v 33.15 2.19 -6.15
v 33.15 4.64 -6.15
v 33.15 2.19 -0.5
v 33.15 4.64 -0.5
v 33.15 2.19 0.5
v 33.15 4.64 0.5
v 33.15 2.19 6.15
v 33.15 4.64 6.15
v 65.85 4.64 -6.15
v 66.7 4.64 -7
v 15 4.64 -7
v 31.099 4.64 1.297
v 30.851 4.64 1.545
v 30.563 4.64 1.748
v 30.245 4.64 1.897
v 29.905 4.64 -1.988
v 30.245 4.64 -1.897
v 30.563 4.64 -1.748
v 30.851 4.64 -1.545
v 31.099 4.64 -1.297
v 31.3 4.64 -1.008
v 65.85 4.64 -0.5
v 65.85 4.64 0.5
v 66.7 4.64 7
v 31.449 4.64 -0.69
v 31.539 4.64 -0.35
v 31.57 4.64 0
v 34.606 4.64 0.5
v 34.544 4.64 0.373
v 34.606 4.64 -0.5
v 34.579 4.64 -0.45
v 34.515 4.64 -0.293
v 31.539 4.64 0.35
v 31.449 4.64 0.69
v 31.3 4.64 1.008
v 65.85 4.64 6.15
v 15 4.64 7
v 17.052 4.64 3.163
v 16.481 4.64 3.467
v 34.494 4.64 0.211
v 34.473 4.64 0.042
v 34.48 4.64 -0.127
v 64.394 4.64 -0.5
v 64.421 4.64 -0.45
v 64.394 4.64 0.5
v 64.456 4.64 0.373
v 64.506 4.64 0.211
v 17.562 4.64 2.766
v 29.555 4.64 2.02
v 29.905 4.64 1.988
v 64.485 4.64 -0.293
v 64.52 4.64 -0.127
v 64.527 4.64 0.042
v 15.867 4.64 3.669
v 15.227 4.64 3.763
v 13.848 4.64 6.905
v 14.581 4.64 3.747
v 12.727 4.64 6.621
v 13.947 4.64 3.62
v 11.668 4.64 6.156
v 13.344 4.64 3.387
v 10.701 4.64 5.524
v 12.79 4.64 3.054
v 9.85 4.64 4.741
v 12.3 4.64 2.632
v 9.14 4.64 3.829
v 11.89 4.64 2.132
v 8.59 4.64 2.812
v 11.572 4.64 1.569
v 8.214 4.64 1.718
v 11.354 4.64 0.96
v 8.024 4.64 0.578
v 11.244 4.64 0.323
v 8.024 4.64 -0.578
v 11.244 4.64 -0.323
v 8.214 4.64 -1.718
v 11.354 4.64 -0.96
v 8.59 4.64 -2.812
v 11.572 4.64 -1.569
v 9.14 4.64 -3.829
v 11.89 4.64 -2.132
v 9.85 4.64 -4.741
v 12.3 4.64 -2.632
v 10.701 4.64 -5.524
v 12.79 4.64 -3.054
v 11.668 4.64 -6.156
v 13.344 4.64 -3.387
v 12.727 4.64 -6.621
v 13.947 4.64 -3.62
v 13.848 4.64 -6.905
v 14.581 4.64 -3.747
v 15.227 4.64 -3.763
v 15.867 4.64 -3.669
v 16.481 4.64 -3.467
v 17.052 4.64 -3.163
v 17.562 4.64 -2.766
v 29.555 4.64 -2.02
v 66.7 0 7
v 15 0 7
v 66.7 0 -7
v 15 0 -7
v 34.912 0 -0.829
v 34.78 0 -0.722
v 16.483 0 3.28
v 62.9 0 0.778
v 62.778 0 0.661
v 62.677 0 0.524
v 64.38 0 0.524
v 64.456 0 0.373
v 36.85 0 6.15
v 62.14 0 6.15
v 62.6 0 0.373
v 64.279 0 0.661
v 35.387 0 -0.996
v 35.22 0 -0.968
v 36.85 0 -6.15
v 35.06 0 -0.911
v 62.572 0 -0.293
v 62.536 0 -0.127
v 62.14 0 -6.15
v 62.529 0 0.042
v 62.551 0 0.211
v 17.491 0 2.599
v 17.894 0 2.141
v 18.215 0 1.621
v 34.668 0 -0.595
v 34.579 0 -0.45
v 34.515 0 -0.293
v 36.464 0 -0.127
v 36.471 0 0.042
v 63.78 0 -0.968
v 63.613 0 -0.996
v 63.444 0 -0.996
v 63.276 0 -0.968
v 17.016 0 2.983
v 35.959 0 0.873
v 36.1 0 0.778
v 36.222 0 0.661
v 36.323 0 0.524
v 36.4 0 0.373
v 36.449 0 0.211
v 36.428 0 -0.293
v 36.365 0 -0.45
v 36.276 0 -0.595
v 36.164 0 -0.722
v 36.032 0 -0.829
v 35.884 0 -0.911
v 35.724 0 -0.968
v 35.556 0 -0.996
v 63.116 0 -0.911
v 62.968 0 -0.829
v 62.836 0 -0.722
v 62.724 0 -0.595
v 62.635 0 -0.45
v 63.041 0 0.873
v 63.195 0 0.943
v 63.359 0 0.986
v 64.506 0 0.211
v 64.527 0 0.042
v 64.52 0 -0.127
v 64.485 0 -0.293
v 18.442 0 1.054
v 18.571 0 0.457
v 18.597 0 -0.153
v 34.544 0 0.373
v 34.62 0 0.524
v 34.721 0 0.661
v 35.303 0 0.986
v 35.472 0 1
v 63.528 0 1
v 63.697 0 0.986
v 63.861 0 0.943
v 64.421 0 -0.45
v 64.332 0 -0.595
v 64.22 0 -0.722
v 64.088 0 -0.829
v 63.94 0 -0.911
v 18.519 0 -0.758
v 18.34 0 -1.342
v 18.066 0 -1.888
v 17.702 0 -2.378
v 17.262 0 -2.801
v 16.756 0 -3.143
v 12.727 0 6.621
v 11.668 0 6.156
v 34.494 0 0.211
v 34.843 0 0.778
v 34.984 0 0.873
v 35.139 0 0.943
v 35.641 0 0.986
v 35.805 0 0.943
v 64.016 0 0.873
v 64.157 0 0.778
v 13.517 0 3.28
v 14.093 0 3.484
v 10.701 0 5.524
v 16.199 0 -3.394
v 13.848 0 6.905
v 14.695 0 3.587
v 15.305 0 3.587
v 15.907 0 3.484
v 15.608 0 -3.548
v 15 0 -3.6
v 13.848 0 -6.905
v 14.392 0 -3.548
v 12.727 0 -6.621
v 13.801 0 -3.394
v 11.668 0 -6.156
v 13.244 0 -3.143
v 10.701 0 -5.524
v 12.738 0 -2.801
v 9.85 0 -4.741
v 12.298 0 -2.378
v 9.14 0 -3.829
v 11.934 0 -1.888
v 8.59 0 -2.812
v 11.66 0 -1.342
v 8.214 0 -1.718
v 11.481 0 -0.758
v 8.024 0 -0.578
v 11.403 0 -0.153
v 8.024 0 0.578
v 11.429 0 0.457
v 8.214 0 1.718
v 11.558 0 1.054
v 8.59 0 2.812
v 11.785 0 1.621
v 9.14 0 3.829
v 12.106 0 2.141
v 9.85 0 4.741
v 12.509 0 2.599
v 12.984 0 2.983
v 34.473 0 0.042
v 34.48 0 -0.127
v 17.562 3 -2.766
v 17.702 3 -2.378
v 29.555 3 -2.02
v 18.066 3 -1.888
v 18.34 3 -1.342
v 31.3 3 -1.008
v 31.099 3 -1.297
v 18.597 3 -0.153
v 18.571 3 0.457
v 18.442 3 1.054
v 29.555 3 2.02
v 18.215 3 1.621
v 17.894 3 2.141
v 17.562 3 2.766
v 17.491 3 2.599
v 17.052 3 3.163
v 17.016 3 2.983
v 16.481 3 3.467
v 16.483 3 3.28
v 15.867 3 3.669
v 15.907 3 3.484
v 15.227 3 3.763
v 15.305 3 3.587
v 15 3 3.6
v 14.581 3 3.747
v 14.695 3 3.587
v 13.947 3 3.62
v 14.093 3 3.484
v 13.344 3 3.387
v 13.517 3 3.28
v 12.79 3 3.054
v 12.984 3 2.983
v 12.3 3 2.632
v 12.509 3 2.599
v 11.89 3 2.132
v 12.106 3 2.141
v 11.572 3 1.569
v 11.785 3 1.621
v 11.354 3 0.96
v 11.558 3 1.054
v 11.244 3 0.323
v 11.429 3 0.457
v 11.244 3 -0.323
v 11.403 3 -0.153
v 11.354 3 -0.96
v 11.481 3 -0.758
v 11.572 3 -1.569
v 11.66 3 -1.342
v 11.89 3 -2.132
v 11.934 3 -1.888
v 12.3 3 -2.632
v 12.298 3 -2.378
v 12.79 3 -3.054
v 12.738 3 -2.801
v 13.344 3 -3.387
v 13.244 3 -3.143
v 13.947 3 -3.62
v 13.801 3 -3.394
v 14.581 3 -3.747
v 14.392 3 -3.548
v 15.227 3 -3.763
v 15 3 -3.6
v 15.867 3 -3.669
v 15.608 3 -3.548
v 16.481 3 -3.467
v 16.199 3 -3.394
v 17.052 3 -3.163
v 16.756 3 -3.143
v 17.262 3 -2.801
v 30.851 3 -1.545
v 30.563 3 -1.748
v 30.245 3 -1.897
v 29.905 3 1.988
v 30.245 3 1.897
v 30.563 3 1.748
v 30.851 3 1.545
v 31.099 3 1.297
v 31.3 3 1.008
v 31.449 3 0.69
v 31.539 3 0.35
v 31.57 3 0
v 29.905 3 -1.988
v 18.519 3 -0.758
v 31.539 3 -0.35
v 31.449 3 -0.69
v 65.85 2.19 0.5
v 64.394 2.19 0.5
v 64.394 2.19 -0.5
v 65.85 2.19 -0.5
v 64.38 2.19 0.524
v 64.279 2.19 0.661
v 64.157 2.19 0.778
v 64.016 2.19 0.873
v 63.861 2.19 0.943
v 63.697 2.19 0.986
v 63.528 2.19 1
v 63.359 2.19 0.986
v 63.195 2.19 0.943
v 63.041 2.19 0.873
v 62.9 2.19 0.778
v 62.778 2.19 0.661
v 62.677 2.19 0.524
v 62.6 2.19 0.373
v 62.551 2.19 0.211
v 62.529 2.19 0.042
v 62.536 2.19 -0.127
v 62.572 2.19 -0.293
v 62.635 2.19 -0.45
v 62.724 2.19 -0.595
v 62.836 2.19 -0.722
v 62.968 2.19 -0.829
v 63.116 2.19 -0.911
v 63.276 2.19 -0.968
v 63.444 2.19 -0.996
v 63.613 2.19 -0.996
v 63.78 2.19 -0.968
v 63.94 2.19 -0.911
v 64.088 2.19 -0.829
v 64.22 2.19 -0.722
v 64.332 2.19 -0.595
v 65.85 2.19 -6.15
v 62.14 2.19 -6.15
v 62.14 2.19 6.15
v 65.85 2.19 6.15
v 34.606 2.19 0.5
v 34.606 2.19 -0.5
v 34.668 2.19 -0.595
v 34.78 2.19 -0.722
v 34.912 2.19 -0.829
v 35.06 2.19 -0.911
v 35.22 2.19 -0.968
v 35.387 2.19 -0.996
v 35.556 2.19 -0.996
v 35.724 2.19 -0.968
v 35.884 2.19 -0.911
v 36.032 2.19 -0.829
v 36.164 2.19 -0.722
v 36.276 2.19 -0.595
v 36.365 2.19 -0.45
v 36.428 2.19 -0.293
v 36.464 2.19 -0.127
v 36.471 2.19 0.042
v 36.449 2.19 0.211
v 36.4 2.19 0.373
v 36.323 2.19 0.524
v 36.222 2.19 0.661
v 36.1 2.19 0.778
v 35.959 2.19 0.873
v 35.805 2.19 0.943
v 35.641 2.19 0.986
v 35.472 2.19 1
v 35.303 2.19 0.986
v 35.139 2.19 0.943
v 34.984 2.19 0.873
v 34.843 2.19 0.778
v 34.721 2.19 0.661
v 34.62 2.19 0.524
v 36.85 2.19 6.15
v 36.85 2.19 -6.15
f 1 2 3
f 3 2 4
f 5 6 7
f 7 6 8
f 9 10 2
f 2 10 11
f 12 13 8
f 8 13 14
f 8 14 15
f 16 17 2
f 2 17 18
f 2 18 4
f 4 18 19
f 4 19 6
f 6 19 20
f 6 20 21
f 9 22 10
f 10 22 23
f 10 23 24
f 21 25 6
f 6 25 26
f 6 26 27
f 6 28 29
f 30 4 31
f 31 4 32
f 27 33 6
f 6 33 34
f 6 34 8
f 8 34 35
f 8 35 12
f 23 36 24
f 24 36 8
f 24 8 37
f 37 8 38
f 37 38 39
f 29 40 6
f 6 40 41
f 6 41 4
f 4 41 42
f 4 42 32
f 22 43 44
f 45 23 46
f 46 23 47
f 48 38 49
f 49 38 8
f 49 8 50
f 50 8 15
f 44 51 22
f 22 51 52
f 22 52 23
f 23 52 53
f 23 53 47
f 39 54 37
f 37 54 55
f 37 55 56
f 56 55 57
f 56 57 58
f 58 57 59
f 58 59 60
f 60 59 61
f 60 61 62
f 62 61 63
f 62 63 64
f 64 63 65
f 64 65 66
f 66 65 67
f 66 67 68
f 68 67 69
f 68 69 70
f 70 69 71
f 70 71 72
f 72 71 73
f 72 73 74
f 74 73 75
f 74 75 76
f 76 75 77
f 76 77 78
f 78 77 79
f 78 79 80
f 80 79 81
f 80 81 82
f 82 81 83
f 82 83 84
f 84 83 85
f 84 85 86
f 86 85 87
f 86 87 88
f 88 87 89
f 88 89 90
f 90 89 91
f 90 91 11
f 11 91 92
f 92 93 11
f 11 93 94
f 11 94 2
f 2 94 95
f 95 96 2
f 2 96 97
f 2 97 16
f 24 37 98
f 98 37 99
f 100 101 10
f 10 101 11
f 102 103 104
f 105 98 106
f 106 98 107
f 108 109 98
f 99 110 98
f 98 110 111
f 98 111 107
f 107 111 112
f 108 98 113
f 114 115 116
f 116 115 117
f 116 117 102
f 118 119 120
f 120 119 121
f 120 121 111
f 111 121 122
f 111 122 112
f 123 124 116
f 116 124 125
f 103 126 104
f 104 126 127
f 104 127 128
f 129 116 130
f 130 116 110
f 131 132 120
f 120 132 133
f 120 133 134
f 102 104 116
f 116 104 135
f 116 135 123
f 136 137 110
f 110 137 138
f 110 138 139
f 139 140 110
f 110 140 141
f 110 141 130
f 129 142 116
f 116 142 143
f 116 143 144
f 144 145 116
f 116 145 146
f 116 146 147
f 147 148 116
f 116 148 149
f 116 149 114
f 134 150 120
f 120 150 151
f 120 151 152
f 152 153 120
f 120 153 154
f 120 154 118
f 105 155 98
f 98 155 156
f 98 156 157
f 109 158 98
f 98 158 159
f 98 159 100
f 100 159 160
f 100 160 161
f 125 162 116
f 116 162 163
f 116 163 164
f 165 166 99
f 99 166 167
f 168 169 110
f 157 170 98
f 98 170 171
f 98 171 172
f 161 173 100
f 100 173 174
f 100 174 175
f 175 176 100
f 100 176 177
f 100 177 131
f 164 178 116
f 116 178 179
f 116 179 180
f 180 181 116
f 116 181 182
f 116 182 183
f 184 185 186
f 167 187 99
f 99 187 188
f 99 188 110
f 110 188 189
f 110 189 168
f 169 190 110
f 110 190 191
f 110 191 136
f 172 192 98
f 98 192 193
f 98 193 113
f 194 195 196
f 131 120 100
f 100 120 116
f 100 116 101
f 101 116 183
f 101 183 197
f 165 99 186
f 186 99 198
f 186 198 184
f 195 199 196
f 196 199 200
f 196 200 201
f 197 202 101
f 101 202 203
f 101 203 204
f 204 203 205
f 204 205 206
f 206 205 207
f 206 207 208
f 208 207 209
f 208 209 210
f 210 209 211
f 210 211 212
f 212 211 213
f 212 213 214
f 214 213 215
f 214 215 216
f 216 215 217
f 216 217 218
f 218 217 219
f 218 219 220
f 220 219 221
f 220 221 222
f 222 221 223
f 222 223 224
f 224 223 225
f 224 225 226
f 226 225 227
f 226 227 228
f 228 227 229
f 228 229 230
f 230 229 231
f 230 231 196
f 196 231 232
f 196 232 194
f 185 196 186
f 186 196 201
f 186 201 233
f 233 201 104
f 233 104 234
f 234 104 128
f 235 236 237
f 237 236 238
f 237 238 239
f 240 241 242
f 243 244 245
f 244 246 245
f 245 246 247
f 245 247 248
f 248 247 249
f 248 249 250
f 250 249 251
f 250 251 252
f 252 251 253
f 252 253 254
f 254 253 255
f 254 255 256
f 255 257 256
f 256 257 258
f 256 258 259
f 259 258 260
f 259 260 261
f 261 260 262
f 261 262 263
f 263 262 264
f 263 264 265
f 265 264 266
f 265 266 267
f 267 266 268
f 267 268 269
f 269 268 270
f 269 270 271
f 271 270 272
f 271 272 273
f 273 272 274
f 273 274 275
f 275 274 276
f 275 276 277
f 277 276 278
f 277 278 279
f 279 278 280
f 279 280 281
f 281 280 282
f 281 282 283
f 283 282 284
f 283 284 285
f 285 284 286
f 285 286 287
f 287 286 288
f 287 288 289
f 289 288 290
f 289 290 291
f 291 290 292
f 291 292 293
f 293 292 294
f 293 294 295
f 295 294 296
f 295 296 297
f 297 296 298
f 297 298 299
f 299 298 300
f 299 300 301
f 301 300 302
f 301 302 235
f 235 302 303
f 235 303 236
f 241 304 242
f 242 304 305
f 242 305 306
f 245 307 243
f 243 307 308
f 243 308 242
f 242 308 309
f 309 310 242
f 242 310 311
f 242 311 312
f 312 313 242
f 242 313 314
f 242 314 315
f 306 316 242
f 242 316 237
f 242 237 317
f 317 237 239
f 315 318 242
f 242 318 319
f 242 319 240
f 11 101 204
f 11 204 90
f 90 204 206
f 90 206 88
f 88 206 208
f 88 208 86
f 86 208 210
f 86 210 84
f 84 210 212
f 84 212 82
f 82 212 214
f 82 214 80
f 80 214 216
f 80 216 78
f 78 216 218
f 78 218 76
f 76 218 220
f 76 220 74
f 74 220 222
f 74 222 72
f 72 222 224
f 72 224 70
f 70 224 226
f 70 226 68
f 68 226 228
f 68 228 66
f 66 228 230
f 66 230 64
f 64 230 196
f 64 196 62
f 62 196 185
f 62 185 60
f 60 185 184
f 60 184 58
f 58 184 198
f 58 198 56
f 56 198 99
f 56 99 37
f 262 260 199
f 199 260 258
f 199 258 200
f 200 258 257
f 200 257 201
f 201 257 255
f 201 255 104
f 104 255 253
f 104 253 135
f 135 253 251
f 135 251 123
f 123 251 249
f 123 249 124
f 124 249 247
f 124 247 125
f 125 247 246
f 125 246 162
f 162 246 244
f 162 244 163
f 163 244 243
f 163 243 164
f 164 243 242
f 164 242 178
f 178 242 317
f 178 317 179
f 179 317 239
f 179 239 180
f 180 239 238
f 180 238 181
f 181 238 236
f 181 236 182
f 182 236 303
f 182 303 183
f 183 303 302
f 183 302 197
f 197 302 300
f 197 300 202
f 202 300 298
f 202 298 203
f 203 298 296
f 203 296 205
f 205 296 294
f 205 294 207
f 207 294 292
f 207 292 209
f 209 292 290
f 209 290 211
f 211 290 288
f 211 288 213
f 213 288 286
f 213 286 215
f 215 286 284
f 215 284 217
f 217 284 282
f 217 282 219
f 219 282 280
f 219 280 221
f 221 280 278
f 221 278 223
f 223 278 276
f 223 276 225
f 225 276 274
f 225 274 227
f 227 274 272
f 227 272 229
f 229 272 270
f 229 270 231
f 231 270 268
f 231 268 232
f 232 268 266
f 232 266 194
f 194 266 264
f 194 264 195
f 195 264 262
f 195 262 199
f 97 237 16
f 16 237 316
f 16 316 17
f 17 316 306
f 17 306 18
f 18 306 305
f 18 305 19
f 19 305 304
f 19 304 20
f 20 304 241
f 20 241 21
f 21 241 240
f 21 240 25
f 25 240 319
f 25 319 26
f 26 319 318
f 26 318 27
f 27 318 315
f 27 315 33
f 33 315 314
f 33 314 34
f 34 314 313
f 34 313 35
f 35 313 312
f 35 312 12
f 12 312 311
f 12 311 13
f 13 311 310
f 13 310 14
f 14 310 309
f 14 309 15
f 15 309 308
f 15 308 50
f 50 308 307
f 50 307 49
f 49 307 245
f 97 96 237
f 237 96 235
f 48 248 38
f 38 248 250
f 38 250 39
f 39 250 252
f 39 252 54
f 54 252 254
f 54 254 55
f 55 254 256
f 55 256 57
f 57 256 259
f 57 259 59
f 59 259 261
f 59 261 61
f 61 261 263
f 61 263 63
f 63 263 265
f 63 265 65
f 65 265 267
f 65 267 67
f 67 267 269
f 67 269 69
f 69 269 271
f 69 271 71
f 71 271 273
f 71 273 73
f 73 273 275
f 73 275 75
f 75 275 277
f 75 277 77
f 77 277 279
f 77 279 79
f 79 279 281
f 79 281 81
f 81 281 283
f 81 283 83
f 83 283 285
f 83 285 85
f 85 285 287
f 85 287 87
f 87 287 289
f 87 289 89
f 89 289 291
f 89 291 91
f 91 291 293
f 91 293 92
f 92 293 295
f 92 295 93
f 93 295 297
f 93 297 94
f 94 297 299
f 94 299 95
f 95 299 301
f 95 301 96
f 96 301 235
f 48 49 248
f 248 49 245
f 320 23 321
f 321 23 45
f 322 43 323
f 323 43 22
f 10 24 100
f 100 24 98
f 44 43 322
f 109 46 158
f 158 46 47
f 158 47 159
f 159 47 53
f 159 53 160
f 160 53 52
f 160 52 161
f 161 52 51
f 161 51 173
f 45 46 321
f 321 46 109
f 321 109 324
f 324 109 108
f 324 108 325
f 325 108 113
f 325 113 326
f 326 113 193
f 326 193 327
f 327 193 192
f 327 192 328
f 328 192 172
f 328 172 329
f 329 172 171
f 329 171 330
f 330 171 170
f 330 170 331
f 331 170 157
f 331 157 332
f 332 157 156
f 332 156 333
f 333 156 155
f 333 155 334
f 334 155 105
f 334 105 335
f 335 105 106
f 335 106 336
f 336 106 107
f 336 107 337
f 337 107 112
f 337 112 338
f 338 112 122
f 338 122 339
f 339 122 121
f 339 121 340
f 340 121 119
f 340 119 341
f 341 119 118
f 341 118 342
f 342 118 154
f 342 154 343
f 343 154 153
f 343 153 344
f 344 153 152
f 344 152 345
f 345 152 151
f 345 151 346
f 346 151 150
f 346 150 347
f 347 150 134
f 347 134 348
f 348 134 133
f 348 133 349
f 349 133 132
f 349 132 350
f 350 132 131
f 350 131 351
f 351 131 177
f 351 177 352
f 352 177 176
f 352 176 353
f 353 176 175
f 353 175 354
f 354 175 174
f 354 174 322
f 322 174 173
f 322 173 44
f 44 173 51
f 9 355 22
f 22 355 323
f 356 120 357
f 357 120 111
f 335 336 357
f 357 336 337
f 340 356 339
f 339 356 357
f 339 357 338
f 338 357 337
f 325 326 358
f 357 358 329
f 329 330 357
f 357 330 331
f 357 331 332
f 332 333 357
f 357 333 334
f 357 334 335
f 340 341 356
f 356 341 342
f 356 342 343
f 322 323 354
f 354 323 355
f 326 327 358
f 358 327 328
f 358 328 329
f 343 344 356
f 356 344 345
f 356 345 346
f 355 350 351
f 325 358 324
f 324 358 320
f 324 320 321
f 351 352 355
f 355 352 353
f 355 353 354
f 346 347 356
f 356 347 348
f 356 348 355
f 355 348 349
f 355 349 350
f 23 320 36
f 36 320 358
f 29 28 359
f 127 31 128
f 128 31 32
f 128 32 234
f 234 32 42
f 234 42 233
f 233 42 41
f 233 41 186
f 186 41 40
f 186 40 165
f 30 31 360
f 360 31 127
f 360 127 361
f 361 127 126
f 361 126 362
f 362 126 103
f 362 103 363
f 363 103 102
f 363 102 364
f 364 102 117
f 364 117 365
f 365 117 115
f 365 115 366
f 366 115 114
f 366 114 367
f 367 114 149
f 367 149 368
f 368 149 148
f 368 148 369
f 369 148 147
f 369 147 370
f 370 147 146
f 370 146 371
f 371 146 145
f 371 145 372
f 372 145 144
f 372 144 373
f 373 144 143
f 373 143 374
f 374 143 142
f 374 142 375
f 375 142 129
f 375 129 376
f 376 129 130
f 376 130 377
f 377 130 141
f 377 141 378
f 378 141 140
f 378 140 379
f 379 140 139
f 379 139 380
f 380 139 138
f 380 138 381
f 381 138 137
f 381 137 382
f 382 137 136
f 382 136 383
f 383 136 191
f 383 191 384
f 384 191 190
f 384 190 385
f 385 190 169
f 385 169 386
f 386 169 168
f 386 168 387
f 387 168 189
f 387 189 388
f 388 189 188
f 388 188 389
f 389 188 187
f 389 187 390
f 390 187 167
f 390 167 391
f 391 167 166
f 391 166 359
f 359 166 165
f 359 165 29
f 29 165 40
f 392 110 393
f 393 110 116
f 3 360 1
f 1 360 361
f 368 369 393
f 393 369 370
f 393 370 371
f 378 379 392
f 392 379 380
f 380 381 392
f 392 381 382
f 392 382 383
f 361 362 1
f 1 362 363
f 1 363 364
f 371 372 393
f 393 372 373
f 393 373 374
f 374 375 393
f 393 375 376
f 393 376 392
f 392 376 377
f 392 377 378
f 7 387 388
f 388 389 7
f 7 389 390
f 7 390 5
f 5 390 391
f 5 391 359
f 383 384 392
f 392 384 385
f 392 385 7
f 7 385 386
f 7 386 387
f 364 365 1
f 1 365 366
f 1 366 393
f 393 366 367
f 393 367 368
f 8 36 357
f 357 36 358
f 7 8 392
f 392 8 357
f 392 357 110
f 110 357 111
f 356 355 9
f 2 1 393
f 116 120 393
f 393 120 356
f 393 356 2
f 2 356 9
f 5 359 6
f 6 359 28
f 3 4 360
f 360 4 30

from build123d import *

# Parameters (mm, degrees)
BOSS_EXTRUDE1_DEPTH       = 3
SKETCH2_R                 = 3.6
CUT_EXTRUDE1_DEPTH        = 3.95
BOSS_EXTRUDE2_DEPTH       = 1.64
SKETCH4_R                 = 3.25
CUT_EXTRUDE2_DEPTH        = 63.566201739
CAVITY1_OUTLINE_R         = 3.25
CAVITY1_DEPTH             = 4.64
CAVITY1_START             = 3.19
CAVITY1_2_DEPTH           = 1.45
CUT_EXTRUDE4_DEPTH        = 63.566201739
BOSS_EXTRUDE3_START       = -4.64
BOSS_EXTRUDE3_DEPTH       = 4.64
BOSS_EXTRUDE4_DEPTH       = 4.64
BOSS_EXTRUDE5_DEPTH       = 4.64
CUT_EXTRUDE5_DEPTH        = 1.45
SKETCH7_R                 = 1
CUT_EXTRUDE6_DEPTH        = 4.64
CUT_EXTRUDE7_DEPTH        = 68.226628653
CUT_EXTRUDE7_DEPTH_BACK   = 68.226628653
SKETCH10_W                = 23.28963149
SKETCH10_H                = 12.3
SKETCH10_W_2              = 22.98963149
SKETCH10_H_2              = 12
CUT_EXTRUDE8_DEPTH        = 1.45
CUT_EXTRUDE9_DEPTH        = 1.45
SKETCH14_W                = 12.3
SKETCH14_H                = 3.19
CUT_EXTRUDE10_DEPTH       = 1
SKETCH15_W                = 12.3
SKETCH15_H                = 3.19
CUT_EXTRUDE11_DEPTH       = 1
CUT_EXTRUDE12_DEPTH       = 1
CUT_EXTRUDE13_DEPTH       = 1
CUT_EXTRUDE14_REACH       = 69.227
SKETCH18_W                = 15
SKETCH18_H                = 14
BODY_MOVE_COPY1_OUTLINE_R = 3.6
BODY_MOVE_COPY1_DEPTH     = 4.64
BODY_MOVE_COPY1_START     = 3
BODY_MOVE_COPY1_2_DEPTH   = 1.64
BODY_MOVE_COPY1_3_DEPTH   = 4.64
BODY_MOVE_COPY1_4_DEPTH   = 3


# Read off the part's stored shape, not the designer's step: Cavity1, Body-Move/Copy1
with BuildPart() as part:
    # Sketch1 → Boss-Extrude1 (new body)
    with BuildSketch(Plane(origin=(0, 0, 0), x_dir=(1, 0, 0), z_dir=(0, 1, 0))):
        with BuildLine():
            Line((0, 7), (55, 7))
            ThreePointArc((55, 7), (62, 0), (55, -7))
            Line((55, -7), (0, -7))
            ThreePointArc((0, -7), (-7, 0), (0, 7))
        make_face()
    extrude(amount=BOSS_EXTRUDE1_DEPTH)

    # Sketch2 → Cut-Extrude1 (cut)
    with BuildSketch(Plane.XZ):
        with Locations(Location((0, 0, 0), (0, 0, 270))):
            Circle(SKETCH2_R)
    extrude(amount=-CUT_EXTRUDE1_DEPTH, mode=Mode.SUBTRACT)

    # Sketch3 → Boss-Extrude2 (add)
    with BuildSketch(Plane(origin=(0, 3, 0), x_dir=(1, 0, 0), z_dir=(0, 1, 0))):
        with BuildLine():
            Line((0, -7), (55, -7))
            ThreePointArc((55, -7), (62, 0), (55, 7))
            Line((55, 7), (0, 7))
            ThreePointArc((0, 7), (-7, 0), (0, -7))
        make_face()
        with BuildLine():
            Line((14.555396889, 2.01999279), (2.561818442, 2.765860855))
            ThreePointArc((2.561818442, 2.765860855), (-3.77, 0), (2.561818442, -2.765860855))
            Line((2.561818442, -2.765860855), (14.555396889, -2.01999279))
            ThreePointArc((14.555396889, -2.01999279), (16.57, 0), (14.555396889, 2.01999279))
        make_face(mode=Mode.SUBTRACT)
    extrude(amount=BOSS_EXTRUDE2_DEPTH)

    # Sketch4 → Cut-Extrude2 (cut, through all)
    with BuildSketch(Plane(origin=(0, 4.64, 0), x_dir=(1, 0, 0), z_dir=(0, 1, 0))):
        with Locations(Location((55, 0, 0), (0, 0, 270))):
            Circle(SKETCH4_R)
    extrude(amount=-CUT_EXTRUDE2_DEPTH, mode=Mode.SUBTRACT)

    # Cavity1 outline → Cavity1 (cut)
    with BuildSketch(Plane(origin=(0, 0, 0), x_dir=(1, 0, 0), z_dir=(0, 1, 0))):
        with BuildLine():
            Line((58.605551275, 6), (38, 6))
            Line((38, 6), (38, -6))
            Line((38, -6), (58.605551275, -6))
            ThreePointArc((58.605551275, -6), (59.949747468, -4.949747468), (61, -3.605551275))
            Line((61, -3.605551275), (61, 3.605551275))
            ThreePointArc((61, 3.605551275), (59.949747468, 4.949747468), (58.605551275, 6))
        make_face()
        with Locations((55, 0)):
            Circle(CAVITY1_OUTLINE_R, mode=Mode.SUBTRACT)
    extrude(amount=CAVITY1_DEPTH, mode=Mode.SUBTRACT)

    # Cavity1 2 outline → Cavity1 2 (cut)
    with BuildSketch(Plane(origin=(0, 0, 0), x_dir=(1, 0, 0), z_dir=(0, 1, 0)).offset(CAVITY1_START)):
        with BuildLine():
            Line((33.3, 0.5), (34.605619966, 0.5))
            ThreePointArc((34.605619966, 0.5), (36.47164537, 0), (34.605619966, -0.5))
            Line((34.605619966, -0.5), (33.3, -0.5))
            Line((33.3, -0.5), (33.3, -6))
            Line((33.3, -6), (38, -6))
            Line((38, -6), (38, 6))
            Line((38, 6), (33.3, 6))
            Line((33.3, 6), (33.3, 0.5))
        make_face()
        with BuildLine():
            ThreePointArc((61, -3.605551275), (62, 0), (61, 3.605551275))
            Line((61, 3.605551275), (61, -3.605551275))
        make_face()
    extrude(amount=CAVITY1_2_DEPTH, mode=Mode.SUBTRACT)

    # Sketch5 → Cut-Extrude4 (cut, through all)
    with BuildSketch(Plane.XZ):
        with BuildLine():
            Line((61, 3.605551275), (61, -3.605551275))
            ThreePointArc((61, -3.605551275), (62, 0), (61, 3.605551275))
        make_face()
    extrude(amount=-CUT_EXTRUDE4_DEPTH, mode=Mode.SUBTRACT)

    # Sketch6 → Boss-Extrude3 (add)
    with BuildSketch(Plane(origin=(0, 4.64, 0), x_dir=(1, 0, 0), z_dir=(0, 1, 0)).offset(BOSS_EXTRUDE3_START)):
        with BuildLine():
            Line((61, -6), (58.605551275, -6))
            ThreePointArc((58.605551275, -6), (56.870828693, -6.745368782), (55, -7))
            Line((55, -7), (66.7, -7))
            Line((66.7, -7), (66.7, 7))
            Line((66.7, 7), (55, 7))
            ThreePointArc((55, 7), (56.870828693, 6.745368782), (58.605551275, 6))
            Line((58.605551275, 6), (61, 6))
            Line((61, 6), (65.7, 6))
            Line((65.7, 6), (65.7, 0.5))
            Line((65.7, 0.5), (65.7, -0.5))
            Line((65.7, -0.5), (65.7, -6))
            Line((65.7, -6), (61, -6))
        make_face()
        with BuildLine():
            Line((58.605551275, -6), (33.3, -6))
            Line((33.3, -6), (33.3, -7))
            Line((33.3, -7), (55, -7))
            ThreePointArc((55, -7), (56.870828693, -6.745368782), (58.605551275, -6))
        make_face()
        with BuildLine():
            Line((33.3, 7), (33.3, 6))
            Line((33.3, 6), (58.605551275, 6))
            ThreePointArc((58.605551275, 6), (56.870828693, 6.745368782), (55, 7))
            Line((55, 7), (33.3, 7))
        make_face()
    extrude(amount=BOSS_EXTRUDE3_DEPTH)

    # Sketch6<3> → Boss-Extrude4 (add)
    with BuildSketch(Plane(origin=(0, 4.64, 0), x_dir=(1, 0, 0), z_dir=(0, 1, 0))):
        with BuildLine():
            Line((64.394380034, -0.5), (65.7, -0.5))
            Line((65.7, -0.5), (65.7, 0.5))
            Line((65.7, 0.5), (64.394380034, 0.5))
            ThreePointArc((64.394380034, 0.5), (62.52835463, 0), (64.394380034, -0.5))
        make_face()
    extrude(amount=-BOSS_EXTRUDE4_DEPTH)

    # Sketch6<5> → Boss-Extrude5 (add)
    with BuildSketch(Plane(origin=(0, 4.64, 0), x_dir=(1, 0, 0), z_dir=(0, 1, 0))):
        with BuildLine():
            Line((61, 6), (61, -6))
            Line((61, -6), (65.7, -6))
            Line((65.7, -6), (65.7, -0.5))
            Line((65.7, -0.5), (64.394380034, -0.5))
            ThreePointArc((64.394380034, -0.5), (62.52835463, 0), (64.394380034, 0.5))
            Line((64.394380034, 0.5), (65.7, 0.5))
            Line((65.7, 0.5), (65.7, 6))
            Line((65.7, 6), (61, 6))
        make_face()
    extrude(amount=-BOSS_EXTRUDE5_DEPTH)

    # Sketch6<6> → Cut-Extrude5 (cut)
    with BuildSketch(Plane(origin=(0, 4.64, 0), x_dir=(1, 0, 0), z_dir=(0, 1, 0))):
        with BuildLine():
            Line((61, 6), (61, -6))
            Line((61, -6), (65.7, -6))
            Line((65.7, -6), (65.7, -0.5))
            Line((65.7, -0.5), (64.394380034, -0.5))
            ThreePointArc((64.394380034, -0.5), (62.52835463, 0), (64.394380034, 0.5))
            Line((64.394380034, 0.5), (65.7, 0.5))
            Line((65.7, 0.5), (65.7, 6))
            Line((65.7, 6), (61, 6))
        make_face()
    extrude(amount=-CUT_EXTRUDE5_DEPTH, mode=Mode.SUBTRACT)

    # Sketch7 → Cut-Extrude6 (cut)
    with BuildSketch(Plane(origin=(0, 4.64, 0), x_dir=(1, 0, 0), z_dir=(0, 1, 0))):
        with Locations(Location((63.52835463, 0, 0), (0, 0, 270))):
            Circle(SKETCH7_R)
        with Locations(Location((35.47164537, 0, 0), (0, 0, 270))):
            Circle(SKETCH7_R)
    extrude(amount=-CUT_EXTRUDE6_DEPTH, mode=Mode.SUBTRACT)

    # Sketch10 → Cut-Extrude7 (cut, two sides: drawn at the far end of the back side and taken through both)
    with BuildSketch(Plane.XZ.offset(-CUT_EXTRUDE7_DEPTH_BACK)):
        with Locations((49.494815745, 0)):
            Rectangle(SKETCH10_W, SKETCH10_H)
        with Locations((49.494815745, 0)):
            Rectangle(SKETCH10_W_2, SKETCH10_H_2, mode=Mode.SUBTRACT)
    extrude(amount=CUT_EXTRUDE7_DEPTH + CUT_EXTRUDE7_DEPTH_BACK, mode=Mode.SUBTRACT)

    # Sketch11 → Cut-Extrude8 (cut)
    with BuildSketch(Plane(origin=(0, 4.64, 0), x_dir=(1, 0, 0), z_dir=(0, 1, 0))):
        Polygon((37.85, -6), (33.3, -6), (33.3, -0.5), (33.15, -0.5), (33.15, -6.15), (37.85, -6.15), align=None)
        Polygon((33.3, 0.5), (33.3, 6), (37.85, 6), (37.85, 6.15), (33.15, 6.15), (33.15, 0.5), align=None)
    extrude(amount=-CUT_EXTRUDE8_DEPTH, mode=Mode.SUBTRACT)

    # Sketch13 → Cut-Extrude9 (cut)
    with BuildSketch(Plane(origin=(0, 4.64, 0), x_dir=(1, 0, 0), z_dir=(0, 1, 0))):
        Polygon((61.13963149, -6), (65.7, -6), (65.7, -0.5), (65.85, -0.5), (65.85, -6.15), (61.13963149, -6.15), align=None)
        Polygon((61.13963149, 6), (65.7, 6), (65.7, 0.5), (65.85, 0.5), (65.85, 6.15), (61.13963149, 6.15), align=None)
    extrude(amount=-CUT_EXTRUDE9_DEPTH, mode=Mode.SUBTRACT)

    # Sketch14 → Cut-Extrude10 (cut)
    with BuildSketch(Plane(origin=(37.85, 0, 0), x_dir=(0, 0, -1), z_dir=(1, 0, 0))):
        with Locations((0, 1.595)):
            Rectangle(SKETCH14_W, SKETCH14_H)
    extrude(amount=-CUT_EXTRUDE10_DEPTH, mode=Mode.SUBTRACT)

    # Sketch15 → Cut-Extrude11 (cut)
    with BuildSketch(Plane.ZY.offset(-61.13963149)):
        with Locations((0, 1.595)):
            Rectangle(SKETCH15_W, SKETCH15_H)
    extrude(amount=-CUT_EXTRUDE11_DEPTH, mode=Mode.SUBTRACT)

    # Sketch16 → Cut-Extrude12 (cut)
    with BuildSketch(Plane(origin=(0, 3.19, 0), x_dir=(1, 0, 0), z_dir=(0, 1, 0))):
        with BuildLine():
            Line((62.13963149, 6.15), (62.13963149, -6.15))
            Line((62.13963149, -6.15), (65.85, -6.15))
            Line((65.85, -6.15), (65.85, -0.5))
            Line((65.85, -0.5), (64.394380034, -0.5))
            ThreePointArc((64.394380034, -0.5), (62.52835463, 0), (64.394380034, 0.5))
            Line((64.394380034, 0.5), (65.85, 0.5))
            Line((65.85, 0.5), (65.85, 6.15))
            Line((65.85, 6.15), (62.13963149, 6.15))
        make_face()
    extrude(amount=-CUT_EXTRUDE12_DEPTH, mode=Mode.SUBTRACT)

    # Sketch17 → Cut-Extrude13 (cut)
    with BuildSketch(Plane(origin=(0, 3.19, 0), x_dir=(1, 0, 0), z_dir=(0, 1, 0))):
        with BuildLine():
            Line((36.85, -6.15), (36.85, 6.15))
            Line((36.85, 6.15), (33.15, 6.15))
            Line((33.15, 6.15), (33.15, 0.5))
            Line((33.15, 0.5), (34.605619966, 0.5))
            ThreePointArc((34.605619966, 0.5), (36.47164537, 0), (34.605619966, -0.5))
            Line((34.605619966, -0.5), (33.15, -0.5))
            Line((33.15, -0.5), (33.15, -6.15))
            Line((33.15, -6.15), (36.85, -6.15))
        make_face()
    extrude(amount=-CUT_EXTRUDE13_DEPTH, mode=Mode.SUBTRACT)

    # Sketch18 → Cut-Extrude14 (cut, up to next)
    with BuildSketch(Plane(origin=(0, 4.64, 0), x_dir=(1, 0, 0), z_dir=(0, 1, 0)), mode=Mode.PRIVATE) as cut_extrude14_sk1:
        with Locations((25.65, 0)):
            Rectangle(SKETCH18_W, SKETCH18_H)
    cut_extrude14_tool1 = extrude(cut_extrude14_sk1.sketch, amount=-CUT_EXTRUDE14_REACH, mode=Mode.PRIVATE) & part.part
    add(cut_extrude14_tool1.solids().sort_by_distance((25.65, 4.64, 0))[0], mode=Mode.SUBTRACT)


with BuildPart() as cut_extrude14_piece_1:
    # of the separate pieces the step leaves, piece 1, a body of its own (cut_extrude14_pieces)
    add(part.part.solids().sort_by_distance((18.15, 0, -7))[0])

    # Body-Move/Copy1 outline → Body-Move/Copy1 (cut)
    # profile 1 of 2: a face of its own
    with BuildSketch(Plane(origin=(0, 0, 0), x_dir=(1, 0, 0), z_dir=(0, 1, 0))):
        with BuildLine():
            Line((15, 7), (0, 7))
            ThreePointArc((0, 7), (-7, 0), (0, -7))
            Line((0, -7), (15, -7))
            ThreePointArc((15, -7), (8, 0), (15, 7))
        make_face()
        Circle(BODY_MOVE_COPY1_OUTLINE_R, mode=Mode.SUBTRACT)
    # profile 2 of 2: a face of its own
    with BuildSketch(Plane(origin=(0, 0, 0), x_dir=(1, 0, 0), z_dir=(0, 1, 0))):
        with BuildLine():
            Line((18.15, -1.742842506), (18.15, 1.742842506))
            ThreePointArc((18.15, 1.742842506), (11.4, 0), (18.15, -1.742842506))
        make_face()
    extrude(amount=BODY_MOVE_COPY1_DEPTH, mode=Mode.SUBTRACT)

    # Body-Move_Copy1 2 outline → Body-Move_Copy1 2 (cut)
    with BuildSketch(Plane(origin=(0, 0, 0), x_dir=(1, 0, 0), z_dir=(0, 1, 0)).offset(BODY_MOVE_COPY1_START)):
        with BuildLine():
            Line((18.15, 1.742842506), (18.15, 2.729282461))
            Line((18.15, 2.729282461), (17.561818442, 2.765860855))
            ThreePointArc((17.561818442, 2.765860855), (14.612436332, 3.75002592), (11.926670151, 2.183470549))
            Line((11.926670151, 2.183470549), (12.128234154, 2.170935495))
            ThreePointArc((12.128234154, 2.170935495), (15.255283103, 3.590937278), (18.15, 1.742842506))
        make_face()
        with BuildLine():
            Line((12.128234154, -2.170935495), (11.926670151, -2.183470549))
            ThreePointArc((11.926670151, -2.183470549), (14.612436332, -3.75002592), (17.561818442, -2.765860855))
            Line((17.561818442, -2.765860855), (18.15, -2.729282461))
            Line((18.15, -2.729282461), (18.15, -1.742842506))
            ThreePointArc((18.15, -1.742842506), (15.255283103, -3.590937278), (12.128234154, -2.170935495))
        make_face()
    extrude(amount=BODY_MOVE_COPY1_2_DEPTH, mode=Mode.SUBTRACT)

    # Body-Move_Copy1 3 outline → Body-Move_Copy1 3 (add)
    with BuildSketch(Plane(origin=(0, 0, 0), x_dir=(1, 0, 0), z_dir=(0, 1, 0))):
        with BuildLine():
            Line((33.15, 7), (18.15, 7))
            Line((18.15, 7), (18.15, 2.729282461))
            Line((18.15, 2.729282461), (29.555396889, 2.01999279))
            ThreePointArc((29.555396889, 2.01999279), (31.57, 0), (29.555396889, -2.01999279))
            Line((29.555396889, -2.01999279), (18.15, -2.729282461))
            Line((18.15, -2.729282461), (18.15, -7))
            Line((18.15, -7), (33.15, -7))
            Line((33.15, -7), (33.15, 7))
        make_face()
        with BuildLine():
            Line((11.926670151, 2.183470549), (8.424744076, 2.401251659))
            ThreePointArc((8.424744076, 2.401251659), (8, 0), (8.424744076, -2.401251659))
            Line((8.424744076, -2.401251659), (11.926670151, -2.183470549))
            ThreePointArc((11.926670151, -2.183470549), (11.23, 0), (11.926670151, 2.183470549))
        make_face()
    extrude(amount=BODY_MOVE_COPY1_3_DEPTH)

    # Body-Move_Copy1 4 outline → Body-Move_Copy1 4 (add)
    with BuildSketch(Plane(origin=(0, 0, 0), x_dir=(1, 0, 0), z_dir=(0, 1, 0))):
        with BuildLine():
            Line((29.555396889, 2.01999279), (18.15, 2.729282461))
            Line((18.15, 2.729282461), (18.15, 1.742842506))
            ThreePointArc((18.15, 1.742842506), (18.6, 0), (18.15, -1.742842506))
            Line((18.15, -1.742842506), (18.15, -2.729282461))
            Line((18.15, -2.729282461), (29.555396889, -2.01999279))
            ThreePointArc((29.555396889, -2.01999279), (31.57, 0), (29.555396889, 2.01999279))
        make_face()
    extrude(amount=BODY_MOVE_COPY1_4_DEPTH)


with BuildPart() as cut_extrude14_piece_2:
    # of the separate pieces the step leaves, piece 2, a body of its own (cut_extrude14_pieces)
    add(part.part.solids().sort_by_distance((66.7, 0, -7))[0])


with BuildPart() as cut_extrude14_piece_1_1:
    add(cut_extrude14_piece_1.part)

    # Combine1: union Cut-Extrude14 piece 2
    add(cut_extrude14_piece_2.part)


solid = cut_extrude14_piece_1_1.part
